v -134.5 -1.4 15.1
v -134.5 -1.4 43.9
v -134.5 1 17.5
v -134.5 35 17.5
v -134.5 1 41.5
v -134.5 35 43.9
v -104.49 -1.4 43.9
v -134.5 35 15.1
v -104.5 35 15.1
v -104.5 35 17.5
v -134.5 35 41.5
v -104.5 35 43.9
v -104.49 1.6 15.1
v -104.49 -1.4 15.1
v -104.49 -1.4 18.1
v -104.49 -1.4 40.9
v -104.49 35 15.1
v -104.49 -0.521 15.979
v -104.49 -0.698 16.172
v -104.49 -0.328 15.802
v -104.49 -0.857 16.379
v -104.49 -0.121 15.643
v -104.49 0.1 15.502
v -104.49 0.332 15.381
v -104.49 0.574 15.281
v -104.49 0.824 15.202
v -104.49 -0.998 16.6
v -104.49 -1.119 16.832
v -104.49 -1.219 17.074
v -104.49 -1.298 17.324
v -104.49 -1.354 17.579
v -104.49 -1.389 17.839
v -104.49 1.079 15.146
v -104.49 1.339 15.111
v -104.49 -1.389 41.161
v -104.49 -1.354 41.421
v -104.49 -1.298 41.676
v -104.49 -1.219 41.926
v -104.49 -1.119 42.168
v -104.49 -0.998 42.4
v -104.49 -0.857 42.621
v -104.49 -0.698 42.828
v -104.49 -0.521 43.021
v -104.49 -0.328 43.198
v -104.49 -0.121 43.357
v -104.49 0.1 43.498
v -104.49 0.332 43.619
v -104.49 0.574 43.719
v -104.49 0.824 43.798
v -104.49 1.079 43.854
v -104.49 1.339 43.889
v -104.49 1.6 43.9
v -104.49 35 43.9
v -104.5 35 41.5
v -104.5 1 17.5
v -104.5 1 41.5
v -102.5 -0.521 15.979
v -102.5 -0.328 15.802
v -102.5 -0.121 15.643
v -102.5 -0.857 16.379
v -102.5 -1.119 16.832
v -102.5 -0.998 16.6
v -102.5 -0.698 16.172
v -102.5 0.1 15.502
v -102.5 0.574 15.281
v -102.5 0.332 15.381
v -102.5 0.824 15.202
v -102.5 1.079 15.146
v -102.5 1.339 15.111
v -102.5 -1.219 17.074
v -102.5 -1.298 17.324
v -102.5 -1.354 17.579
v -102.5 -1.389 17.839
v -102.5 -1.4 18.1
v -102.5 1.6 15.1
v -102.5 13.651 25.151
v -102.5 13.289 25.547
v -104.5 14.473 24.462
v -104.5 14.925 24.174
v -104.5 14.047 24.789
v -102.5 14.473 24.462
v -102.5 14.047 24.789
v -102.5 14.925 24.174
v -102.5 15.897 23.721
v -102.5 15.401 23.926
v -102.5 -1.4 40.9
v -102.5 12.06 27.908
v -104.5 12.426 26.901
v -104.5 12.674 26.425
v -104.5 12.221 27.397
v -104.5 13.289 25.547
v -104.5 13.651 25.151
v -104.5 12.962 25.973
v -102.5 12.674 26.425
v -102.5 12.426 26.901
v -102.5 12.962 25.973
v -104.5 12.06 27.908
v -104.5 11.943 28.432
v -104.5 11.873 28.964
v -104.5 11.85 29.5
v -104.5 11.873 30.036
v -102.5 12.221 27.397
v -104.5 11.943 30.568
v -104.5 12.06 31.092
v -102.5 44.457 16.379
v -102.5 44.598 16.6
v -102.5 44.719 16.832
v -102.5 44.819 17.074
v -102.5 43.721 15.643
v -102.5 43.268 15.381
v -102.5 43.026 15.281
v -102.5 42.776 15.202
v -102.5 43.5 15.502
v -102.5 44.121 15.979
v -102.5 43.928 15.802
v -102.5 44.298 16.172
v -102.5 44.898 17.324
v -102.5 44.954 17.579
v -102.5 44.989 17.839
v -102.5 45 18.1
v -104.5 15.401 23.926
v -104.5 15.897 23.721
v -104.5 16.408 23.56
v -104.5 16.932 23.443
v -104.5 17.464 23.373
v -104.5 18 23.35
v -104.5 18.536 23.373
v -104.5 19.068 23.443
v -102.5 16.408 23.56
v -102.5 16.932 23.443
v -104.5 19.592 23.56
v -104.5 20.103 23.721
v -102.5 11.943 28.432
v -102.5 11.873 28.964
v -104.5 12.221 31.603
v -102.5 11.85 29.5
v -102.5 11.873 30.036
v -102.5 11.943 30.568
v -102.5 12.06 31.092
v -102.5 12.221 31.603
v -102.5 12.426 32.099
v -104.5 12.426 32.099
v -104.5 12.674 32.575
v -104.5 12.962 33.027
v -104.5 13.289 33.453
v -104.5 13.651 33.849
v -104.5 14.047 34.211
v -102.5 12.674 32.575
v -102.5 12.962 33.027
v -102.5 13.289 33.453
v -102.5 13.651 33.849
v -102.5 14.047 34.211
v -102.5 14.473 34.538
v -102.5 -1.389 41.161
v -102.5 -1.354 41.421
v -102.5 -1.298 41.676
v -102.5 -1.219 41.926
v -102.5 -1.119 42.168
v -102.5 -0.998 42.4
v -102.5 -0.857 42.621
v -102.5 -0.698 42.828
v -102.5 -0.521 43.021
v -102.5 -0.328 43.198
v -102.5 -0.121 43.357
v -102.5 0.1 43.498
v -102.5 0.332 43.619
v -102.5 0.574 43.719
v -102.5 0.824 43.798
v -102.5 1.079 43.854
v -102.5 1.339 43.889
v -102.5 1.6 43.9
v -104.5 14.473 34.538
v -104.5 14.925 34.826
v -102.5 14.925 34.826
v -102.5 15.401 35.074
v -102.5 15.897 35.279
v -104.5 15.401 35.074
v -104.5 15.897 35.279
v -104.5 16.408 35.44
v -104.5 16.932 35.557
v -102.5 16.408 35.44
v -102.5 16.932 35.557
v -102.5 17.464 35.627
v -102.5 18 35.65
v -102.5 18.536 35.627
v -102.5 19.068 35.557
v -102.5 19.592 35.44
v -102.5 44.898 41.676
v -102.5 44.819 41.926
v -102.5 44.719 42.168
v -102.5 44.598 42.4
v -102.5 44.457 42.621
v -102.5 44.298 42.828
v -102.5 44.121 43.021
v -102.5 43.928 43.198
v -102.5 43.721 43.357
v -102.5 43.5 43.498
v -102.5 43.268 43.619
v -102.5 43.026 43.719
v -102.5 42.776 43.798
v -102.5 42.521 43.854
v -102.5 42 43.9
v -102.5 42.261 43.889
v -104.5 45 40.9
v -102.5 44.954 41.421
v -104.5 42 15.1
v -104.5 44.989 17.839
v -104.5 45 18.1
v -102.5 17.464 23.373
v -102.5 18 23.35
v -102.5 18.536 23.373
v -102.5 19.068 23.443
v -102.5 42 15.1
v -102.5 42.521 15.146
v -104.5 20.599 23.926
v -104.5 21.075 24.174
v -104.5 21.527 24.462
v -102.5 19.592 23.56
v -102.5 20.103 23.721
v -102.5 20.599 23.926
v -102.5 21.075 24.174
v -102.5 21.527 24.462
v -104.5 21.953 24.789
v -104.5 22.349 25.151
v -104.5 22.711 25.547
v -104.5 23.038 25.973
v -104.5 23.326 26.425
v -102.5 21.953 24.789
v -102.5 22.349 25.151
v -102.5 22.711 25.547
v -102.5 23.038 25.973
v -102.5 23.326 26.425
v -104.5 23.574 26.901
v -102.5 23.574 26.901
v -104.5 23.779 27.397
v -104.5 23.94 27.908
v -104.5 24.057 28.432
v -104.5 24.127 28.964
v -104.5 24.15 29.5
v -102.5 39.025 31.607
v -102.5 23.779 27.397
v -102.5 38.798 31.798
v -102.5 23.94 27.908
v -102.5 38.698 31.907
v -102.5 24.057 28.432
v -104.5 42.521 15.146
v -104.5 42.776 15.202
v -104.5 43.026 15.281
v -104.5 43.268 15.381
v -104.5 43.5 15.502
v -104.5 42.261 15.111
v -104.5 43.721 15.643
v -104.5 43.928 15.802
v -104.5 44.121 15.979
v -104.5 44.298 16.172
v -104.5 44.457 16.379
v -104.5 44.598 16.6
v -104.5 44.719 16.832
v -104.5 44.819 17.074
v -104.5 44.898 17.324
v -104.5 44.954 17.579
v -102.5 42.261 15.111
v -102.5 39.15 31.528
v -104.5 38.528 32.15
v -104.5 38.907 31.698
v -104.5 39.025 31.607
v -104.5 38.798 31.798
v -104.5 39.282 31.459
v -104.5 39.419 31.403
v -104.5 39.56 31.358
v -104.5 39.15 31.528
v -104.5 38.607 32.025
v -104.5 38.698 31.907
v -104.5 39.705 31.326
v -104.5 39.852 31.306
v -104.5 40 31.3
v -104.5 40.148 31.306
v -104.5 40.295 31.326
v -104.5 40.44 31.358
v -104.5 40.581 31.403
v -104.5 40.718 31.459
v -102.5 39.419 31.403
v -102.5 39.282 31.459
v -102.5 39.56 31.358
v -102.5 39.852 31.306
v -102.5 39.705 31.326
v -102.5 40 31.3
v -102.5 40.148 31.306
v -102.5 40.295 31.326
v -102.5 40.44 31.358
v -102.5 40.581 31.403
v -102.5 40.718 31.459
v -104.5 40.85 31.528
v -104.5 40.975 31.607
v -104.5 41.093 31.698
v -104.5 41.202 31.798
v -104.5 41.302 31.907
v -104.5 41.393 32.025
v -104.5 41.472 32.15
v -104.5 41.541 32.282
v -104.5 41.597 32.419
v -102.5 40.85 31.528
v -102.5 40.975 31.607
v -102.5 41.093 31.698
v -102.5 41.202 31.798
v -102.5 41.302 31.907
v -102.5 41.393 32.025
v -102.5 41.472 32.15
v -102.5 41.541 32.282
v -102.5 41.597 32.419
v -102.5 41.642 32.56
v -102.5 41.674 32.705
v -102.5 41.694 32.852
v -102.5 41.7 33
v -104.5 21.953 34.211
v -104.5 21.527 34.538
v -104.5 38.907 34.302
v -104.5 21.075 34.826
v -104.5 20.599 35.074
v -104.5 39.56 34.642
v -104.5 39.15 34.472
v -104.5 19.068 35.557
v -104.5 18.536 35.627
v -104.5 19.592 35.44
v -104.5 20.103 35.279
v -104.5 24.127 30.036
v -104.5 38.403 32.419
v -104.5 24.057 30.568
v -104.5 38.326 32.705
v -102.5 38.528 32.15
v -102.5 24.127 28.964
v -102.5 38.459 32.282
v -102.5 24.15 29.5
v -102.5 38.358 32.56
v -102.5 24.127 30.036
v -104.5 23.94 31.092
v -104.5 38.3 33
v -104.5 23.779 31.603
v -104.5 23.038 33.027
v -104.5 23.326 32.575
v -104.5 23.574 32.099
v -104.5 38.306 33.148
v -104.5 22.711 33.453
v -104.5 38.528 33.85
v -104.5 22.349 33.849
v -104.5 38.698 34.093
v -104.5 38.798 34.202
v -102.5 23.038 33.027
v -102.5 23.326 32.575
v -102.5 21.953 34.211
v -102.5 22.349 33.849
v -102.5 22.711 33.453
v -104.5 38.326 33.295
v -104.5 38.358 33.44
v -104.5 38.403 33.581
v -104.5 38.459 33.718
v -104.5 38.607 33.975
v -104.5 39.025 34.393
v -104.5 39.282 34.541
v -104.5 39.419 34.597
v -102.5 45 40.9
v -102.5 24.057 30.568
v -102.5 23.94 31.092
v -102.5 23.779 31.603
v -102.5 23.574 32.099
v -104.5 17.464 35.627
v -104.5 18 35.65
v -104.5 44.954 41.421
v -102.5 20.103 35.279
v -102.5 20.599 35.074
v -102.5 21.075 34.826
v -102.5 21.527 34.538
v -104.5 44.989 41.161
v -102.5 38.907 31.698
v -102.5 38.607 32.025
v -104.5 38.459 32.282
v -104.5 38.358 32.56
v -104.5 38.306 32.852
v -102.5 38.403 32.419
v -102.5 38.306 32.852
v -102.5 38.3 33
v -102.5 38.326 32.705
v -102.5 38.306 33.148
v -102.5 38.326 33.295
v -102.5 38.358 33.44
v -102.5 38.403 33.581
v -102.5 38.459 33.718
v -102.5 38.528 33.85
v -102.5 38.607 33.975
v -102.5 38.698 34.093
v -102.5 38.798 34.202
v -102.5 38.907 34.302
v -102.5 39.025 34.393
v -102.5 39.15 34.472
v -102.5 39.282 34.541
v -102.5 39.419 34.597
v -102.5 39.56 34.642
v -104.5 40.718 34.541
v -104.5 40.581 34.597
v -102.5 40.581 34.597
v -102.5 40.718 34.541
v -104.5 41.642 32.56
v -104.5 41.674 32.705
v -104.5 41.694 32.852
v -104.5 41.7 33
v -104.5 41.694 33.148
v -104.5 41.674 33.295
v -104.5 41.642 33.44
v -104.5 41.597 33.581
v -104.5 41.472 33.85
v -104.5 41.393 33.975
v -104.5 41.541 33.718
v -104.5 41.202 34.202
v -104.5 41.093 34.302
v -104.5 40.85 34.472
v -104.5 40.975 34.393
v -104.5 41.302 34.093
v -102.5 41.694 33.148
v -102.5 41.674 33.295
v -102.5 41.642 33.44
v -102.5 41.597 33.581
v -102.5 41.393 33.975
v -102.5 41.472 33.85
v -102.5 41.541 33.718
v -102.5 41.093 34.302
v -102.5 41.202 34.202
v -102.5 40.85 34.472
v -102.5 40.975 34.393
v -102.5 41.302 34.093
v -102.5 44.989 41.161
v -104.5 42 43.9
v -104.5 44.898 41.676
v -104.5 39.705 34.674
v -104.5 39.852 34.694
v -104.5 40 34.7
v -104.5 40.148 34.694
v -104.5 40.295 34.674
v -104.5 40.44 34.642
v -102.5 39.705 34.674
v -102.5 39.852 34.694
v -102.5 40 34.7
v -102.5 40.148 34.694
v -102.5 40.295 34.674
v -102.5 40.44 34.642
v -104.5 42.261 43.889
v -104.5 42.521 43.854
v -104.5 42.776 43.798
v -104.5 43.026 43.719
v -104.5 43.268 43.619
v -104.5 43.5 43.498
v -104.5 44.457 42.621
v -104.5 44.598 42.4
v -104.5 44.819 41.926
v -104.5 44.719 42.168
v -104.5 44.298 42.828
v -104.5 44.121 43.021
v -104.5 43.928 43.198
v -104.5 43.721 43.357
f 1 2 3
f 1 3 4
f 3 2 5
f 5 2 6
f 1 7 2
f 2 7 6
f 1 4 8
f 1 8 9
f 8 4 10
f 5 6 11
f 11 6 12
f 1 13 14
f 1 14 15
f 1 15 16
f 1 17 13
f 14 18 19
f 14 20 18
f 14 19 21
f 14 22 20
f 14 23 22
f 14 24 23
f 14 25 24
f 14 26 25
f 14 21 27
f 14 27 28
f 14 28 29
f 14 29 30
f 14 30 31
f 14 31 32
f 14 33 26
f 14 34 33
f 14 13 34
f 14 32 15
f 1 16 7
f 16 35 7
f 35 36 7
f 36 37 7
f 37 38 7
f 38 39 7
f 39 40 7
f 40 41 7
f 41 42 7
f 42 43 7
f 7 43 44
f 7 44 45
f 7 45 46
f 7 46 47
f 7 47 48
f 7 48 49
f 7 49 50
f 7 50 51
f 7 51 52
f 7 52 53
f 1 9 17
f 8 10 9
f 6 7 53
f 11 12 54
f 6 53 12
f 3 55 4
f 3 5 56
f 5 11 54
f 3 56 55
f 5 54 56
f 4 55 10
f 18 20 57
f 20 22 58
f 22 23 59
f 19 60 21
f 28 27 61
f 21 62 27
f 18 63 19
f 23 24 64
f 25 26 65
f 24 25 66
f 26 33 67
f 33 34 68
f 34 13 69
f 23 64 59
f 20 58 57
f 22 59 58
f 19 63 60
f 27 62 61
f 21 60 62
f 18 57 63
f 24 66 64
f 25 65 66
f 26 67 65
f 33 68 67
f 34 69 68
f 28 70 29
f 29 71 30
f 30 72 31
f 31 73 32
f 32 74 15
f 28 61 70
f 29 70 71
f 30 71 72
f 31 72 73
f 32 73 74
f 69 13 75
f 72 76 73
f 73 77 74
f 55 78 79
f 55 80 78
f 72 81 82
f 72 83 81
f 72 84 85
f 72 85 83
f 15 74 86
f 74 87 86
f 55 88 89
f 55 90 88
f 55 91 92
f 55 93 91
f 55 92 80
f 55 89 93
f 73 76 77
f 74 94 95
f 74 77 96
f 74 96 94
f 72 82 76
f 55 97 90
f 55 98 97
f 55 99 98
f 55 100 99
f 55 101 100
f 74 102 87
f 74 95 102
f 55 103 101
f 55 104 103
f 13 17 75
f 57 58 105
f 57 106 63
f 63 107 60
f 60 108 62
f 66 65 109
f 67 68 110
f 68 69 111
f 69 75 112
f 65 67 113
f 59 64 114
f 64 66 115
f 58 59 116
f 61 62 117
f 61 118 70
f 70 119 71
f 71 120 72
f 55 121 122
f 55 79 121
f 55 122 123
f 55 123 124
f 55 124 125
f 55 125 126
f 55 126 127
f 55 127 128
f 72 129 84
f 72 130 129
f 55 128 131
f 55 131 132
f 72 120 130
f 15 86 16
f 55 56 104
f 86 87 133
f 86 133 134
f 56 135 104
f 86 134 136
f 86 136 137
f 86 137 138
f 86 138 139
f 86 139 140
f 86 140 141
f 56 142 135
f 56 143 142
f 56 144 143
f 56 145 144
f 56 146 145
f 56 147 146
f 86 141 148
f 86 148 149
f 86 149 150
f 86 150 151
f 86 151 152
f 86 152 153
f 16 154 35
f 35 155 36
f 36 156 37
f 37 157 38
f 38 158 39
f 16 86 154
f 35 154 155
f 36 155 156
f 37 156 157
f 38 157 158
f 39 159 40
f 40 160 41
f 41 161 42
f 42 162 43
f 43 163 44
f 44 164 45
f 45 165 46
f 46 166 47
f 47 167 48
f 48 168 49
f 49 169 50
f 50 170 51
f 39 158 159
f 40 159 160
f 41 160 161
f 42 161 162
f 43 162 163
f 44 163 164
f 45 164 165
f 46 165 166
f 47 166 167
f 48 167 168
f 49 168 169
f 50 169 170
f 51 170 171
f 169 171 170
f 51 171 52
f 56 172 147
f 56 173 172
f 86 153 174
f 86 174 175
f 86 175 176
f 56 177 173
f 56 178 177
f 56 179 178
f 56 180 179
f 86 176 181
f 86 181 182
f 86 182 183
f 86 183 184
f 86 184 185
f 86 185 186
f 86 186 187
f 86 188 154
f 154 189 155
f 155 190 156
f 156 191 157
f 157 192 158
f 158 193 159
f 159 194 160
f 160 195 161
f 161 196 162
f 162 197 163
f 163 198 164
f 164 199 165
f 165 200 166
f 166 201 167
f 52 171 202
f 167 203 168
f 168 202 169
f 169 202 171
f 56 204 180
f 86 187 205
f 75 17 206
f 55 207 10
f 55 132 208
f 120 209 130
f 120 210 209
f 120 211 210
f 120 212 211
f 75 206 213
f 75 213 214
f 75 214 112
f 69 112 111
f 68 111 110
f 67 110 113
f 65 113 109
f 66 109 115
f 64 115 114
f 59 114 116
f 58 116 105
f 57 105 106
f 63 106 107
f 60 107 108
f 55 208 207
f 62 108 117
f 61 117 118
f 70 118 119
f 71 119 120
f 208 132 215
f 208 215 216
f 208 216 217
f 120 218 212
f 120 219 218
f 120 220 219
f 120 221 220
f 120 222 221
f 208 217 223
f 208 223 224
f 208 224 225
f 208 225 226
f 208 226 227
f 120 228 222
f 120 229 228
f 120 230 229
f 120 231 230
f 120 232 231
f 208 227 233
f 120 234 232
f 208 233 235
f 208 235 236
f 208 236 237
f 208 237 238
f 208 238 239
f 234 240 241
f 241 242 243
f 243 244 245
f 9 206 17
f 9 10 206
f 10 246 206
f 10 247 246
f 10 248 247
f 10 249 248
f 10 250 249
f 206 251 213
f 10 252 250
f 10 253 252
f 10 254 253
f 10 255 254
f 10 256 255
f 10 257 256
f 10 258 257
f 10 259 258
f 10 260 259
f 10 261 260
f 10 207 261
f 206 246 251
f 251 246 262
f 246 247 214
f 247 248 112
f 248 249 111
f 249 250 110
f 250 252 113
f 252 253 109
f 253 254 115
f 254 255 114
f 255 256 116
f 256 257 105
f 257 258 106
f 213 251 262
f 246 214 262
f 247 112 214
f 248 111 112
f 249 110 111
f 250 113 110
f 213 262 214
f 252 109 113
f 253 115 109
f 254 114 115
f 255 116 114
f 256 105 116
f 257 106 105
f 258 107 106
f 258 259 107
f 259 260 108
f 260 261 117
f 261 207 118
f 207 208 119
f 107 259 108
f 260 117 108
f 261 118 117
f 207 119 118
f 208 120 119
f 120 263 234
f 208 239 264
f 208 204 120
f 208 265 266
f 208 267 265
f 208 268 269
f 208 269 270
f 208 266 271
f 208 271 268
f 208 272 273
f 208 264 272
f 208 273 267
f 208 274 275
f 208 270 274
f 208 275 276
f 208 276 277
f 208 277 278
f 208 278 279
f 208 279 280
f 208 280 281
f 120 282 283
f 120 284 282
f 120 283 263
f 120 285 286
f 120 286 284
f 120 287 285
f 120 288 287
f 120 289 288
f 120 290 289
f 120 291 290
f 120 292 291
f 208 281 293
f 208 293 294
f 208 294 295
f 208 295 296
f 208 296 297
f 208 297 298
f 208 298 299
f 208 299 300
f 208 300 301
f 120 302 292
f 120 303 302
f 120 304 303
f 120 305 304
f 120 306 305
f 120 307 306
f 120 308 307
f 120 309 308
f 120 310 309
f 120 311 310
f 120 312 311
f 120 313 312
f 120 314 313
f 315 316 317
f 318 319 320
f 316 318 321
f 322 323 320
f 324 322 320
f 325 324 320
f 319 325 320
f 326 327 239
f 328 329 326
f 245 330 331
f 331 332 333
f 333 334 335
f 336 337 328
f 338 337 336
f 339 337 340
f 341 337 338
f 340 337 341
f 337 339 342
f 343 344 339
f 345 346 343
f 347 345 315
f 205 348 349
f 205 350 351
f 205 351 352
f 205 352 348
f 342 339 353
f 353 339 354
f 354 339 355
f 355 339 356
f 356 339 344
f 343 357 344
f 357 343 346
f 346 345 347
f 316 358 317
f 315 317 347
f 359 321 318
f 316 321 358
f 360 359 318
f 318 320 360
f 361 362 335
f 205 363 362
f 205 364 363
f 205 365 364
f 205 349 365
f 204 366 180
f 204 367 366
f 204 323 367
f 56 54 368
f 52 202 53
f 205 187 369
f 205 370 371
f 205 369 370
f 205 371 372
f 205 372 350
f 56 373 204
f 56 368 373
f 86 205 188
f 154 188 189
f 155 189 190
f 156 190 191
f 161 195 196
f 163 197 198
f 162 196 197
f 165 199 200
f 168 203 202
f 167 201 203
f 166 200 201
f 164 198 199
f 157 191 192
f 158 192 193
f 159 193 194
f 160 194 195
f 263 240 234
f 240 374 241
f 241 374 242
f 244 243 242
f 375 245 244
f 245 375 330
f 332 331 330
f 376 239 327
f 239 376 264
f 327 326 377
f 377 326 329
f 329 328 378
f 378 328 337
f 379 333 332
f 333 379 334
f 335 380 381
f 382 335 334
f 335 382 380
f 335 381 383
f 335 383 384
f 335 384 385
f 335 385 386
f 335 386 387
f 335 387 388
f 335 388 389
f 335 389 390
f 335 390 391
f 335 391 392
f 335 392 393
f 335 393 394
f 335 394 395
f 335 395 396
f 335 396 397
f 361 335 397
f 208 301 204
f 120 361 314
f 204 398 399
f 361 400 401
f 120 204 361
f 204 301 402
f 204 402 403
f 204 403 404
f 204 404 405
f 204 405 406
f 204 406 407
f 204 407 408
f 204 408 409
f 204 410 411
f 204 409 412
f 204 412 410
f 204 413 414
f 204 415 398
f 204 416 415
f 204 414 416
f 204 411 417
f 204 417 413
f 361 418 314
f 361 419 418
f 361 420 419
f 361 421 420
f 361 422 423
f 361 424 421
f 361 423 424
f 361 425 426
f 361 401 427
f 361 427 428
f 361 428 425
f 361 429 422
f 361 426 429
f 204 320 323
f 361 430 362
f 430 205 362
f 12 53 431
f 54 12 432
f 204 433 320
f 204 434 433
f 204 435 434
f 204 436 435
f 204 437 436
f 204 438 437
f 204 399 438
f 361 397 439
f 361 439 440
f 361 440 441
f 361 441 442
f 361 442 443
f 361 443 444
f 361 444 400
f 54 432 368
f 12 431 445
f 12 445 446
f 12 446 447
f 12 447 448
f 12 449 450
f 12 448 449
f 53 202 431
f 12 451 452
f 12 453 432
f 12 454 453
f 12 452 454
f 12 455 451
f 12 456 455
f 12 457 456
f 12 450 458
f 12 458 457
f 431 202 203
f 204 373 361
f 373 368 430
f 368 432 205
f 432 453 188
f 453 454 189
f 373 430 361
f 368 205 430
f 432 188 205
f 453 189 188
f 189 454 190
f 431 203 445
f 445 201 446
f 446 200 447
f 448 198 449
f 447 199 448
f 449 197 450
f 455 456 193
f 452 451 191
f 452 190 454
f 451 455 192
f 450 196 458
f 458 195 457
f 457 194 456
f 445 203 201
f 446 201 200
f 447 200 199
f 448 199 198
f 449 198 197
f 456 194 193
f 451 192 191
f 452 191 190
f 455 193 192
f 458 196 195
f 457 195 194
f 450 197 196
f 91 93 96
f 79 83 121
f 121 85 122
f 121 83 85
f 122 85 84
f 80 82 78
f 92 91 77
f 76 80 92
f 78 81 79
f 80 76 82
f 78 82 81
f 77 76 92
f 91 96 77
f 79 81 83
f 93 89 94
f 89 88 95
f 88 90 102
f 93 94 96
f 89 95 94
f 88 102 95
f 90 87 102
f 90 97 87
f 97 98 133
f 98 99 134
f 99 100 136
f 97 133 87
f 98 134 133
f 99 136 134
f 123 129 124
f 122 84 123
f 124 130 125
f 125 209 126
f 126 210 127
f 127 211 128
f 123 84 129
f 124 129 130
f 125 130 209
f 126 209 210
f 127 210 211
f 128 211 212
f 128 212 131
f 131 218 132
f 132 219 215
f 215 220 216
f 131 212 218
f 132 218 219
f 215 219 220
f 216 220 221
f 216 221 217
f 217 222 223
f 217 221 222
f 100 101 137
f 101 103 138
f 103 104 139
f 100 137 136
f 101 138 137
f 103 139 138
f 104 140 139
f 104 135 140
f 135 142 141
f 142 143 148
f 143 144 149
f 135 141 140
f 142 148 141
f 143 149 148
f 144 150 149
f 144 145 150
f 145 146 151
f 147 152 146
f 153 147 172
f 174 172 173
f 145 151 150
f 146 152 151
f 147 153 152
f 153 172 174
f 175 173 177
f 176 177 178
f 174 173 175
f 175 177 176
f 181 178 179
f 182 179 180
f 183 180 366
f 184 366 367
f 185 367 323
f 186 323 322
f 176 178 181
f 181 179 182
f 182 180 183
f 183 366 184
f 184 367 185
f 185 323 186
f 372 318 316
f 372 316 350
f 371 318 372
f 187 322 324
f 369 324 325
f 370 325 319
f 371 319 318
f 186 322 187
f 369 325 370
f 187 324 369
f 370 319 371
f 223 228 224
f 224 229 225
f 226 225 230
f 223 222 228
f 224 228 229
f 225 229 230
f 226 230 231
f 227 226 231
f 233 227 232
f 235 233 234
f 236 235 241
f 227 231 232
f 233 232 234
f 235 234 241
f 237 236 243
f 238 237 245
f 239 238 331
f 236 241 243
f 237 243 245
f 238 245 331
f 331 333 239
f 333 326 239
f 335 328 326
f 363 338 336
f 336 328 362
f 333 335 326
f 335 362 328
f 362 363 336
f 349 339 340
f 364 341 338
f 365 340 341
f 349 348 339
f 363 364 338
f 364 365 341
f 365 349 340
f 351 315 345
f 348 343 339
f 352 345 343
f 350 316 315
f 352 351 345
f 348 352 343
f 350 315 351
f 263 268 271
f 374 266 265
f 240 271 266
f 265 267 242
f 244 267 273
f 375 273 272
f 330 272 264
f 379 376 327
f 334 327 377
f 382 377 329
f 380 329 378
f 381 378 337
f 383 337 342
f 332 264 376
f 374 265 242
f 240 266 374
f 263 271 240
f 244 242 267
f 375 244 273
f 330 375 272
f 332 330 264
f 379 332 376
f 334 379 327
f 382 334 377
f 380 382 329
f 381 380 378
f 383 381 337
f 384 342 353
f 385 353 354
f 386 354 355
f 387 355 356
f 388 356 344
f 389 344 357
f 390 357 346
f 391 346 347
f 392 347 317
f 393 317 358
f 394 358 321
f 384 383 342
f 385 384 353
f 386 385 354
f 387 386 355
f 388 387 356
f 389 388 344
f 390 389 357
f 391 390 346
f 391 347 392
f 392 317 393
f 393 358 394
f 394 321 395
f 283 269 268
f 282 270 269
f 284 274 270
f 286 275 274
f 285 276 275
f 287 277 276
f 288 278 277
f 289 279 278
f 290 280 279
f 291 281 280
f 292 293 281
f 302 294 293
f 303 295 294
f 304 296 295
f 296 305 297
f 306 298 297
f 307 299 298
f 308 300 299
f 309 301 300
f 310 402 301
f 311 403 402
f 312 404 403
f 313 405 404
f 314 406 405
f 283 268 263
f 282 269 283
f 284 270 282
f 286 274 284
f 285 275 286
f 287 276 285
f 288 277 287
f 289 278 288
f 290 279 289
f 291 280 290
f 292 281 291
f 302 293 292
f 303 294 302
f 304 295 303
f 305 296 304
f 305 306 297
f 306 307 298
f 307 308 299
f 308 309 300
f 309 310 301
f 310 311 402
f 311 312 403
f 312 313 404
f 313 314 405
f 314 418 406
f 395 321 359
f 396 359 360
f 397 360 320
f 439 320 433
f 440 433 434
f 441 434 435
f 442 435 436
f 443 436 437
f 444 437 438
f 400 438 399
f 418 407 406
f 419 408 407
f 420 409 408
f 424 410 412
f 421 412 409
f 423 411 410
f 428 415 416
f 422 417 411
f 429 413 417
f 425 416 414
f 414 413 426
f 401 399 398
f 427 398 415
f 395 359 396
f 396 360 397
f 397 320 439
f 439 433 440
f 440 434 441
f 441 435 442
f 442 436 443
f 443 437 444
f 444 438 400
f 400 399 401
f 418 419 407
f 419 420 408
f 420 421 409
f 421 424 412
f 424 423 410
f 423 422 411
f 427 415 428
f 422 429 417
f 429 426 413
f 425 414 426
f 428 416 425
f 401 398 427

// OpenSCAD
// file: ../md_params.scad
// =====================================================================
//  Microduck-look skin for the Open Duck Mini v2 skeleton
//  Shared parameters and helpers.
//  Frame: Open Duck print/robot frame, mm. +x forward, +y left, +z up.
//  Every part is modelled where it sits on the robot (zero pose).
// =====================================================================

$fn = 72;
EPS = 0.01;

// ---------- fasteners ----------
INSERT_D   = 4.0;   // hole for M3 x 5 brass heat-set insert (Amazon B0DZ8B7FW1)
INSERT_L   = 6.0;   // hole depth for that insert
M3_CLR     = 3.4;   // M3 clearance
M3_HEAD    = 6.5;   // M3 socket-head counterbore
M3_NUT     = 6.4;   // M3 nut across corners (+clearance)
M2_TAP     = 1.8;   // M2 self-tapping pilot (SG90 tab screws, servo adapter)
M25_TAP    = 2.2;   // M2.5 self-tapping pilot (Radxa)
M2_CLR     = 2.4;

// ---------- colours (for previews only) ----------
C_WHITE = [0.95, 0.94, 0.90];
C_BLACK = [0.13, 0.13, 0.14];

// ---------- helpers ----------
function lerp(a, b, t) = a + (b - a) * t;

// Section with vertical sides from zb to zc and a superellipse cap from zc to zt.
// Points are (y, z). n = 2 gives an ellipse, larger n gives a squarer top.
function se_pts(w, zb, zc, zt, n, N = 56) =
    concat(
        [[ w, zb]],
        [for (i = [0:N]) let(t = i * 180 / N, c = cos(t), s = sin(t))
            [w * sign(c) * pow(abs(c), 2 / n), zc + (zt - zc) * pow(abs(s), 2 / n)]],
        [[-w, zb]]
    );

// st = [x, half_width, z_bottom, z_curve_start, z_top, exponent]
module station(st, inset = 0, ext = 0) {
    translate([st[0], 0, 0]) rotate([90, 0, 90])
        linear_extrude(height = EPS, center = true)
            offset(delta = -inset)
                polygon(se_pts(st[1], st[2] - ext, st[3], st[4], st[5]));
}

// piecewise loft through convex stations (hull of neighbours)
module loft(sts, inset = 0, ext = 0) {
    for (i = [0:len(sts) - 2])
        hull() { station(sts[i], inset, ext); station(sts[i + 1], inset, ext); }
}

// station parameters interpolated at any x inside the list
function st_at(sts, x) =
    let(i = max([for (k = [0:len(sts) - 2]) if (sts[k][0] <= x) k]),
        a = sts[i], b = sts[i + 1], t = (x - a[0]) / (b[0] - a[0]))
    [x, lerp(a[1], b[1], t), lerp(a[2], b[2], t), lerp(a[3], b[3], t),
        lerp(a[4], b[4], t), lerp(a[5], b[5], t)];

// heat-set insert pocket: opening at origin, going along -z by default
module insert_hole(depth = INSERT_L, d = INSERT_D) {
    translate([0, 0, -depth]) cylinder(d = d, h = depth + EPS);
    translate([0, 0, -0.6]) cylinder(d1 = d, d2 = d + 0.8, h = 0.6 + EPS);   // lead-in chamfer
}

// M3 clearance with counterbore, axis +z, counterbore at the top
module m3_cb(len_total, cb_depth) {
    translate([0, 0, -EPS]) cylinder(d = M3_CLR, h = len_total + 2 * EPS);
    translate([0, 0, len_total - cb_depth]) cylinder(d = M3_HEAD, h = cb_depth + 1);
}

module rrect(x0, x1, y0, y1, r) {
    translate([x0 + r, y0 + r]) offset(r = r) square([x1 - x0 - 2 * r, y1 - y0 - 2 * r]);
}
// main file
include <../md_params.scad>
include <../md_body.scad>
switch_guard();
